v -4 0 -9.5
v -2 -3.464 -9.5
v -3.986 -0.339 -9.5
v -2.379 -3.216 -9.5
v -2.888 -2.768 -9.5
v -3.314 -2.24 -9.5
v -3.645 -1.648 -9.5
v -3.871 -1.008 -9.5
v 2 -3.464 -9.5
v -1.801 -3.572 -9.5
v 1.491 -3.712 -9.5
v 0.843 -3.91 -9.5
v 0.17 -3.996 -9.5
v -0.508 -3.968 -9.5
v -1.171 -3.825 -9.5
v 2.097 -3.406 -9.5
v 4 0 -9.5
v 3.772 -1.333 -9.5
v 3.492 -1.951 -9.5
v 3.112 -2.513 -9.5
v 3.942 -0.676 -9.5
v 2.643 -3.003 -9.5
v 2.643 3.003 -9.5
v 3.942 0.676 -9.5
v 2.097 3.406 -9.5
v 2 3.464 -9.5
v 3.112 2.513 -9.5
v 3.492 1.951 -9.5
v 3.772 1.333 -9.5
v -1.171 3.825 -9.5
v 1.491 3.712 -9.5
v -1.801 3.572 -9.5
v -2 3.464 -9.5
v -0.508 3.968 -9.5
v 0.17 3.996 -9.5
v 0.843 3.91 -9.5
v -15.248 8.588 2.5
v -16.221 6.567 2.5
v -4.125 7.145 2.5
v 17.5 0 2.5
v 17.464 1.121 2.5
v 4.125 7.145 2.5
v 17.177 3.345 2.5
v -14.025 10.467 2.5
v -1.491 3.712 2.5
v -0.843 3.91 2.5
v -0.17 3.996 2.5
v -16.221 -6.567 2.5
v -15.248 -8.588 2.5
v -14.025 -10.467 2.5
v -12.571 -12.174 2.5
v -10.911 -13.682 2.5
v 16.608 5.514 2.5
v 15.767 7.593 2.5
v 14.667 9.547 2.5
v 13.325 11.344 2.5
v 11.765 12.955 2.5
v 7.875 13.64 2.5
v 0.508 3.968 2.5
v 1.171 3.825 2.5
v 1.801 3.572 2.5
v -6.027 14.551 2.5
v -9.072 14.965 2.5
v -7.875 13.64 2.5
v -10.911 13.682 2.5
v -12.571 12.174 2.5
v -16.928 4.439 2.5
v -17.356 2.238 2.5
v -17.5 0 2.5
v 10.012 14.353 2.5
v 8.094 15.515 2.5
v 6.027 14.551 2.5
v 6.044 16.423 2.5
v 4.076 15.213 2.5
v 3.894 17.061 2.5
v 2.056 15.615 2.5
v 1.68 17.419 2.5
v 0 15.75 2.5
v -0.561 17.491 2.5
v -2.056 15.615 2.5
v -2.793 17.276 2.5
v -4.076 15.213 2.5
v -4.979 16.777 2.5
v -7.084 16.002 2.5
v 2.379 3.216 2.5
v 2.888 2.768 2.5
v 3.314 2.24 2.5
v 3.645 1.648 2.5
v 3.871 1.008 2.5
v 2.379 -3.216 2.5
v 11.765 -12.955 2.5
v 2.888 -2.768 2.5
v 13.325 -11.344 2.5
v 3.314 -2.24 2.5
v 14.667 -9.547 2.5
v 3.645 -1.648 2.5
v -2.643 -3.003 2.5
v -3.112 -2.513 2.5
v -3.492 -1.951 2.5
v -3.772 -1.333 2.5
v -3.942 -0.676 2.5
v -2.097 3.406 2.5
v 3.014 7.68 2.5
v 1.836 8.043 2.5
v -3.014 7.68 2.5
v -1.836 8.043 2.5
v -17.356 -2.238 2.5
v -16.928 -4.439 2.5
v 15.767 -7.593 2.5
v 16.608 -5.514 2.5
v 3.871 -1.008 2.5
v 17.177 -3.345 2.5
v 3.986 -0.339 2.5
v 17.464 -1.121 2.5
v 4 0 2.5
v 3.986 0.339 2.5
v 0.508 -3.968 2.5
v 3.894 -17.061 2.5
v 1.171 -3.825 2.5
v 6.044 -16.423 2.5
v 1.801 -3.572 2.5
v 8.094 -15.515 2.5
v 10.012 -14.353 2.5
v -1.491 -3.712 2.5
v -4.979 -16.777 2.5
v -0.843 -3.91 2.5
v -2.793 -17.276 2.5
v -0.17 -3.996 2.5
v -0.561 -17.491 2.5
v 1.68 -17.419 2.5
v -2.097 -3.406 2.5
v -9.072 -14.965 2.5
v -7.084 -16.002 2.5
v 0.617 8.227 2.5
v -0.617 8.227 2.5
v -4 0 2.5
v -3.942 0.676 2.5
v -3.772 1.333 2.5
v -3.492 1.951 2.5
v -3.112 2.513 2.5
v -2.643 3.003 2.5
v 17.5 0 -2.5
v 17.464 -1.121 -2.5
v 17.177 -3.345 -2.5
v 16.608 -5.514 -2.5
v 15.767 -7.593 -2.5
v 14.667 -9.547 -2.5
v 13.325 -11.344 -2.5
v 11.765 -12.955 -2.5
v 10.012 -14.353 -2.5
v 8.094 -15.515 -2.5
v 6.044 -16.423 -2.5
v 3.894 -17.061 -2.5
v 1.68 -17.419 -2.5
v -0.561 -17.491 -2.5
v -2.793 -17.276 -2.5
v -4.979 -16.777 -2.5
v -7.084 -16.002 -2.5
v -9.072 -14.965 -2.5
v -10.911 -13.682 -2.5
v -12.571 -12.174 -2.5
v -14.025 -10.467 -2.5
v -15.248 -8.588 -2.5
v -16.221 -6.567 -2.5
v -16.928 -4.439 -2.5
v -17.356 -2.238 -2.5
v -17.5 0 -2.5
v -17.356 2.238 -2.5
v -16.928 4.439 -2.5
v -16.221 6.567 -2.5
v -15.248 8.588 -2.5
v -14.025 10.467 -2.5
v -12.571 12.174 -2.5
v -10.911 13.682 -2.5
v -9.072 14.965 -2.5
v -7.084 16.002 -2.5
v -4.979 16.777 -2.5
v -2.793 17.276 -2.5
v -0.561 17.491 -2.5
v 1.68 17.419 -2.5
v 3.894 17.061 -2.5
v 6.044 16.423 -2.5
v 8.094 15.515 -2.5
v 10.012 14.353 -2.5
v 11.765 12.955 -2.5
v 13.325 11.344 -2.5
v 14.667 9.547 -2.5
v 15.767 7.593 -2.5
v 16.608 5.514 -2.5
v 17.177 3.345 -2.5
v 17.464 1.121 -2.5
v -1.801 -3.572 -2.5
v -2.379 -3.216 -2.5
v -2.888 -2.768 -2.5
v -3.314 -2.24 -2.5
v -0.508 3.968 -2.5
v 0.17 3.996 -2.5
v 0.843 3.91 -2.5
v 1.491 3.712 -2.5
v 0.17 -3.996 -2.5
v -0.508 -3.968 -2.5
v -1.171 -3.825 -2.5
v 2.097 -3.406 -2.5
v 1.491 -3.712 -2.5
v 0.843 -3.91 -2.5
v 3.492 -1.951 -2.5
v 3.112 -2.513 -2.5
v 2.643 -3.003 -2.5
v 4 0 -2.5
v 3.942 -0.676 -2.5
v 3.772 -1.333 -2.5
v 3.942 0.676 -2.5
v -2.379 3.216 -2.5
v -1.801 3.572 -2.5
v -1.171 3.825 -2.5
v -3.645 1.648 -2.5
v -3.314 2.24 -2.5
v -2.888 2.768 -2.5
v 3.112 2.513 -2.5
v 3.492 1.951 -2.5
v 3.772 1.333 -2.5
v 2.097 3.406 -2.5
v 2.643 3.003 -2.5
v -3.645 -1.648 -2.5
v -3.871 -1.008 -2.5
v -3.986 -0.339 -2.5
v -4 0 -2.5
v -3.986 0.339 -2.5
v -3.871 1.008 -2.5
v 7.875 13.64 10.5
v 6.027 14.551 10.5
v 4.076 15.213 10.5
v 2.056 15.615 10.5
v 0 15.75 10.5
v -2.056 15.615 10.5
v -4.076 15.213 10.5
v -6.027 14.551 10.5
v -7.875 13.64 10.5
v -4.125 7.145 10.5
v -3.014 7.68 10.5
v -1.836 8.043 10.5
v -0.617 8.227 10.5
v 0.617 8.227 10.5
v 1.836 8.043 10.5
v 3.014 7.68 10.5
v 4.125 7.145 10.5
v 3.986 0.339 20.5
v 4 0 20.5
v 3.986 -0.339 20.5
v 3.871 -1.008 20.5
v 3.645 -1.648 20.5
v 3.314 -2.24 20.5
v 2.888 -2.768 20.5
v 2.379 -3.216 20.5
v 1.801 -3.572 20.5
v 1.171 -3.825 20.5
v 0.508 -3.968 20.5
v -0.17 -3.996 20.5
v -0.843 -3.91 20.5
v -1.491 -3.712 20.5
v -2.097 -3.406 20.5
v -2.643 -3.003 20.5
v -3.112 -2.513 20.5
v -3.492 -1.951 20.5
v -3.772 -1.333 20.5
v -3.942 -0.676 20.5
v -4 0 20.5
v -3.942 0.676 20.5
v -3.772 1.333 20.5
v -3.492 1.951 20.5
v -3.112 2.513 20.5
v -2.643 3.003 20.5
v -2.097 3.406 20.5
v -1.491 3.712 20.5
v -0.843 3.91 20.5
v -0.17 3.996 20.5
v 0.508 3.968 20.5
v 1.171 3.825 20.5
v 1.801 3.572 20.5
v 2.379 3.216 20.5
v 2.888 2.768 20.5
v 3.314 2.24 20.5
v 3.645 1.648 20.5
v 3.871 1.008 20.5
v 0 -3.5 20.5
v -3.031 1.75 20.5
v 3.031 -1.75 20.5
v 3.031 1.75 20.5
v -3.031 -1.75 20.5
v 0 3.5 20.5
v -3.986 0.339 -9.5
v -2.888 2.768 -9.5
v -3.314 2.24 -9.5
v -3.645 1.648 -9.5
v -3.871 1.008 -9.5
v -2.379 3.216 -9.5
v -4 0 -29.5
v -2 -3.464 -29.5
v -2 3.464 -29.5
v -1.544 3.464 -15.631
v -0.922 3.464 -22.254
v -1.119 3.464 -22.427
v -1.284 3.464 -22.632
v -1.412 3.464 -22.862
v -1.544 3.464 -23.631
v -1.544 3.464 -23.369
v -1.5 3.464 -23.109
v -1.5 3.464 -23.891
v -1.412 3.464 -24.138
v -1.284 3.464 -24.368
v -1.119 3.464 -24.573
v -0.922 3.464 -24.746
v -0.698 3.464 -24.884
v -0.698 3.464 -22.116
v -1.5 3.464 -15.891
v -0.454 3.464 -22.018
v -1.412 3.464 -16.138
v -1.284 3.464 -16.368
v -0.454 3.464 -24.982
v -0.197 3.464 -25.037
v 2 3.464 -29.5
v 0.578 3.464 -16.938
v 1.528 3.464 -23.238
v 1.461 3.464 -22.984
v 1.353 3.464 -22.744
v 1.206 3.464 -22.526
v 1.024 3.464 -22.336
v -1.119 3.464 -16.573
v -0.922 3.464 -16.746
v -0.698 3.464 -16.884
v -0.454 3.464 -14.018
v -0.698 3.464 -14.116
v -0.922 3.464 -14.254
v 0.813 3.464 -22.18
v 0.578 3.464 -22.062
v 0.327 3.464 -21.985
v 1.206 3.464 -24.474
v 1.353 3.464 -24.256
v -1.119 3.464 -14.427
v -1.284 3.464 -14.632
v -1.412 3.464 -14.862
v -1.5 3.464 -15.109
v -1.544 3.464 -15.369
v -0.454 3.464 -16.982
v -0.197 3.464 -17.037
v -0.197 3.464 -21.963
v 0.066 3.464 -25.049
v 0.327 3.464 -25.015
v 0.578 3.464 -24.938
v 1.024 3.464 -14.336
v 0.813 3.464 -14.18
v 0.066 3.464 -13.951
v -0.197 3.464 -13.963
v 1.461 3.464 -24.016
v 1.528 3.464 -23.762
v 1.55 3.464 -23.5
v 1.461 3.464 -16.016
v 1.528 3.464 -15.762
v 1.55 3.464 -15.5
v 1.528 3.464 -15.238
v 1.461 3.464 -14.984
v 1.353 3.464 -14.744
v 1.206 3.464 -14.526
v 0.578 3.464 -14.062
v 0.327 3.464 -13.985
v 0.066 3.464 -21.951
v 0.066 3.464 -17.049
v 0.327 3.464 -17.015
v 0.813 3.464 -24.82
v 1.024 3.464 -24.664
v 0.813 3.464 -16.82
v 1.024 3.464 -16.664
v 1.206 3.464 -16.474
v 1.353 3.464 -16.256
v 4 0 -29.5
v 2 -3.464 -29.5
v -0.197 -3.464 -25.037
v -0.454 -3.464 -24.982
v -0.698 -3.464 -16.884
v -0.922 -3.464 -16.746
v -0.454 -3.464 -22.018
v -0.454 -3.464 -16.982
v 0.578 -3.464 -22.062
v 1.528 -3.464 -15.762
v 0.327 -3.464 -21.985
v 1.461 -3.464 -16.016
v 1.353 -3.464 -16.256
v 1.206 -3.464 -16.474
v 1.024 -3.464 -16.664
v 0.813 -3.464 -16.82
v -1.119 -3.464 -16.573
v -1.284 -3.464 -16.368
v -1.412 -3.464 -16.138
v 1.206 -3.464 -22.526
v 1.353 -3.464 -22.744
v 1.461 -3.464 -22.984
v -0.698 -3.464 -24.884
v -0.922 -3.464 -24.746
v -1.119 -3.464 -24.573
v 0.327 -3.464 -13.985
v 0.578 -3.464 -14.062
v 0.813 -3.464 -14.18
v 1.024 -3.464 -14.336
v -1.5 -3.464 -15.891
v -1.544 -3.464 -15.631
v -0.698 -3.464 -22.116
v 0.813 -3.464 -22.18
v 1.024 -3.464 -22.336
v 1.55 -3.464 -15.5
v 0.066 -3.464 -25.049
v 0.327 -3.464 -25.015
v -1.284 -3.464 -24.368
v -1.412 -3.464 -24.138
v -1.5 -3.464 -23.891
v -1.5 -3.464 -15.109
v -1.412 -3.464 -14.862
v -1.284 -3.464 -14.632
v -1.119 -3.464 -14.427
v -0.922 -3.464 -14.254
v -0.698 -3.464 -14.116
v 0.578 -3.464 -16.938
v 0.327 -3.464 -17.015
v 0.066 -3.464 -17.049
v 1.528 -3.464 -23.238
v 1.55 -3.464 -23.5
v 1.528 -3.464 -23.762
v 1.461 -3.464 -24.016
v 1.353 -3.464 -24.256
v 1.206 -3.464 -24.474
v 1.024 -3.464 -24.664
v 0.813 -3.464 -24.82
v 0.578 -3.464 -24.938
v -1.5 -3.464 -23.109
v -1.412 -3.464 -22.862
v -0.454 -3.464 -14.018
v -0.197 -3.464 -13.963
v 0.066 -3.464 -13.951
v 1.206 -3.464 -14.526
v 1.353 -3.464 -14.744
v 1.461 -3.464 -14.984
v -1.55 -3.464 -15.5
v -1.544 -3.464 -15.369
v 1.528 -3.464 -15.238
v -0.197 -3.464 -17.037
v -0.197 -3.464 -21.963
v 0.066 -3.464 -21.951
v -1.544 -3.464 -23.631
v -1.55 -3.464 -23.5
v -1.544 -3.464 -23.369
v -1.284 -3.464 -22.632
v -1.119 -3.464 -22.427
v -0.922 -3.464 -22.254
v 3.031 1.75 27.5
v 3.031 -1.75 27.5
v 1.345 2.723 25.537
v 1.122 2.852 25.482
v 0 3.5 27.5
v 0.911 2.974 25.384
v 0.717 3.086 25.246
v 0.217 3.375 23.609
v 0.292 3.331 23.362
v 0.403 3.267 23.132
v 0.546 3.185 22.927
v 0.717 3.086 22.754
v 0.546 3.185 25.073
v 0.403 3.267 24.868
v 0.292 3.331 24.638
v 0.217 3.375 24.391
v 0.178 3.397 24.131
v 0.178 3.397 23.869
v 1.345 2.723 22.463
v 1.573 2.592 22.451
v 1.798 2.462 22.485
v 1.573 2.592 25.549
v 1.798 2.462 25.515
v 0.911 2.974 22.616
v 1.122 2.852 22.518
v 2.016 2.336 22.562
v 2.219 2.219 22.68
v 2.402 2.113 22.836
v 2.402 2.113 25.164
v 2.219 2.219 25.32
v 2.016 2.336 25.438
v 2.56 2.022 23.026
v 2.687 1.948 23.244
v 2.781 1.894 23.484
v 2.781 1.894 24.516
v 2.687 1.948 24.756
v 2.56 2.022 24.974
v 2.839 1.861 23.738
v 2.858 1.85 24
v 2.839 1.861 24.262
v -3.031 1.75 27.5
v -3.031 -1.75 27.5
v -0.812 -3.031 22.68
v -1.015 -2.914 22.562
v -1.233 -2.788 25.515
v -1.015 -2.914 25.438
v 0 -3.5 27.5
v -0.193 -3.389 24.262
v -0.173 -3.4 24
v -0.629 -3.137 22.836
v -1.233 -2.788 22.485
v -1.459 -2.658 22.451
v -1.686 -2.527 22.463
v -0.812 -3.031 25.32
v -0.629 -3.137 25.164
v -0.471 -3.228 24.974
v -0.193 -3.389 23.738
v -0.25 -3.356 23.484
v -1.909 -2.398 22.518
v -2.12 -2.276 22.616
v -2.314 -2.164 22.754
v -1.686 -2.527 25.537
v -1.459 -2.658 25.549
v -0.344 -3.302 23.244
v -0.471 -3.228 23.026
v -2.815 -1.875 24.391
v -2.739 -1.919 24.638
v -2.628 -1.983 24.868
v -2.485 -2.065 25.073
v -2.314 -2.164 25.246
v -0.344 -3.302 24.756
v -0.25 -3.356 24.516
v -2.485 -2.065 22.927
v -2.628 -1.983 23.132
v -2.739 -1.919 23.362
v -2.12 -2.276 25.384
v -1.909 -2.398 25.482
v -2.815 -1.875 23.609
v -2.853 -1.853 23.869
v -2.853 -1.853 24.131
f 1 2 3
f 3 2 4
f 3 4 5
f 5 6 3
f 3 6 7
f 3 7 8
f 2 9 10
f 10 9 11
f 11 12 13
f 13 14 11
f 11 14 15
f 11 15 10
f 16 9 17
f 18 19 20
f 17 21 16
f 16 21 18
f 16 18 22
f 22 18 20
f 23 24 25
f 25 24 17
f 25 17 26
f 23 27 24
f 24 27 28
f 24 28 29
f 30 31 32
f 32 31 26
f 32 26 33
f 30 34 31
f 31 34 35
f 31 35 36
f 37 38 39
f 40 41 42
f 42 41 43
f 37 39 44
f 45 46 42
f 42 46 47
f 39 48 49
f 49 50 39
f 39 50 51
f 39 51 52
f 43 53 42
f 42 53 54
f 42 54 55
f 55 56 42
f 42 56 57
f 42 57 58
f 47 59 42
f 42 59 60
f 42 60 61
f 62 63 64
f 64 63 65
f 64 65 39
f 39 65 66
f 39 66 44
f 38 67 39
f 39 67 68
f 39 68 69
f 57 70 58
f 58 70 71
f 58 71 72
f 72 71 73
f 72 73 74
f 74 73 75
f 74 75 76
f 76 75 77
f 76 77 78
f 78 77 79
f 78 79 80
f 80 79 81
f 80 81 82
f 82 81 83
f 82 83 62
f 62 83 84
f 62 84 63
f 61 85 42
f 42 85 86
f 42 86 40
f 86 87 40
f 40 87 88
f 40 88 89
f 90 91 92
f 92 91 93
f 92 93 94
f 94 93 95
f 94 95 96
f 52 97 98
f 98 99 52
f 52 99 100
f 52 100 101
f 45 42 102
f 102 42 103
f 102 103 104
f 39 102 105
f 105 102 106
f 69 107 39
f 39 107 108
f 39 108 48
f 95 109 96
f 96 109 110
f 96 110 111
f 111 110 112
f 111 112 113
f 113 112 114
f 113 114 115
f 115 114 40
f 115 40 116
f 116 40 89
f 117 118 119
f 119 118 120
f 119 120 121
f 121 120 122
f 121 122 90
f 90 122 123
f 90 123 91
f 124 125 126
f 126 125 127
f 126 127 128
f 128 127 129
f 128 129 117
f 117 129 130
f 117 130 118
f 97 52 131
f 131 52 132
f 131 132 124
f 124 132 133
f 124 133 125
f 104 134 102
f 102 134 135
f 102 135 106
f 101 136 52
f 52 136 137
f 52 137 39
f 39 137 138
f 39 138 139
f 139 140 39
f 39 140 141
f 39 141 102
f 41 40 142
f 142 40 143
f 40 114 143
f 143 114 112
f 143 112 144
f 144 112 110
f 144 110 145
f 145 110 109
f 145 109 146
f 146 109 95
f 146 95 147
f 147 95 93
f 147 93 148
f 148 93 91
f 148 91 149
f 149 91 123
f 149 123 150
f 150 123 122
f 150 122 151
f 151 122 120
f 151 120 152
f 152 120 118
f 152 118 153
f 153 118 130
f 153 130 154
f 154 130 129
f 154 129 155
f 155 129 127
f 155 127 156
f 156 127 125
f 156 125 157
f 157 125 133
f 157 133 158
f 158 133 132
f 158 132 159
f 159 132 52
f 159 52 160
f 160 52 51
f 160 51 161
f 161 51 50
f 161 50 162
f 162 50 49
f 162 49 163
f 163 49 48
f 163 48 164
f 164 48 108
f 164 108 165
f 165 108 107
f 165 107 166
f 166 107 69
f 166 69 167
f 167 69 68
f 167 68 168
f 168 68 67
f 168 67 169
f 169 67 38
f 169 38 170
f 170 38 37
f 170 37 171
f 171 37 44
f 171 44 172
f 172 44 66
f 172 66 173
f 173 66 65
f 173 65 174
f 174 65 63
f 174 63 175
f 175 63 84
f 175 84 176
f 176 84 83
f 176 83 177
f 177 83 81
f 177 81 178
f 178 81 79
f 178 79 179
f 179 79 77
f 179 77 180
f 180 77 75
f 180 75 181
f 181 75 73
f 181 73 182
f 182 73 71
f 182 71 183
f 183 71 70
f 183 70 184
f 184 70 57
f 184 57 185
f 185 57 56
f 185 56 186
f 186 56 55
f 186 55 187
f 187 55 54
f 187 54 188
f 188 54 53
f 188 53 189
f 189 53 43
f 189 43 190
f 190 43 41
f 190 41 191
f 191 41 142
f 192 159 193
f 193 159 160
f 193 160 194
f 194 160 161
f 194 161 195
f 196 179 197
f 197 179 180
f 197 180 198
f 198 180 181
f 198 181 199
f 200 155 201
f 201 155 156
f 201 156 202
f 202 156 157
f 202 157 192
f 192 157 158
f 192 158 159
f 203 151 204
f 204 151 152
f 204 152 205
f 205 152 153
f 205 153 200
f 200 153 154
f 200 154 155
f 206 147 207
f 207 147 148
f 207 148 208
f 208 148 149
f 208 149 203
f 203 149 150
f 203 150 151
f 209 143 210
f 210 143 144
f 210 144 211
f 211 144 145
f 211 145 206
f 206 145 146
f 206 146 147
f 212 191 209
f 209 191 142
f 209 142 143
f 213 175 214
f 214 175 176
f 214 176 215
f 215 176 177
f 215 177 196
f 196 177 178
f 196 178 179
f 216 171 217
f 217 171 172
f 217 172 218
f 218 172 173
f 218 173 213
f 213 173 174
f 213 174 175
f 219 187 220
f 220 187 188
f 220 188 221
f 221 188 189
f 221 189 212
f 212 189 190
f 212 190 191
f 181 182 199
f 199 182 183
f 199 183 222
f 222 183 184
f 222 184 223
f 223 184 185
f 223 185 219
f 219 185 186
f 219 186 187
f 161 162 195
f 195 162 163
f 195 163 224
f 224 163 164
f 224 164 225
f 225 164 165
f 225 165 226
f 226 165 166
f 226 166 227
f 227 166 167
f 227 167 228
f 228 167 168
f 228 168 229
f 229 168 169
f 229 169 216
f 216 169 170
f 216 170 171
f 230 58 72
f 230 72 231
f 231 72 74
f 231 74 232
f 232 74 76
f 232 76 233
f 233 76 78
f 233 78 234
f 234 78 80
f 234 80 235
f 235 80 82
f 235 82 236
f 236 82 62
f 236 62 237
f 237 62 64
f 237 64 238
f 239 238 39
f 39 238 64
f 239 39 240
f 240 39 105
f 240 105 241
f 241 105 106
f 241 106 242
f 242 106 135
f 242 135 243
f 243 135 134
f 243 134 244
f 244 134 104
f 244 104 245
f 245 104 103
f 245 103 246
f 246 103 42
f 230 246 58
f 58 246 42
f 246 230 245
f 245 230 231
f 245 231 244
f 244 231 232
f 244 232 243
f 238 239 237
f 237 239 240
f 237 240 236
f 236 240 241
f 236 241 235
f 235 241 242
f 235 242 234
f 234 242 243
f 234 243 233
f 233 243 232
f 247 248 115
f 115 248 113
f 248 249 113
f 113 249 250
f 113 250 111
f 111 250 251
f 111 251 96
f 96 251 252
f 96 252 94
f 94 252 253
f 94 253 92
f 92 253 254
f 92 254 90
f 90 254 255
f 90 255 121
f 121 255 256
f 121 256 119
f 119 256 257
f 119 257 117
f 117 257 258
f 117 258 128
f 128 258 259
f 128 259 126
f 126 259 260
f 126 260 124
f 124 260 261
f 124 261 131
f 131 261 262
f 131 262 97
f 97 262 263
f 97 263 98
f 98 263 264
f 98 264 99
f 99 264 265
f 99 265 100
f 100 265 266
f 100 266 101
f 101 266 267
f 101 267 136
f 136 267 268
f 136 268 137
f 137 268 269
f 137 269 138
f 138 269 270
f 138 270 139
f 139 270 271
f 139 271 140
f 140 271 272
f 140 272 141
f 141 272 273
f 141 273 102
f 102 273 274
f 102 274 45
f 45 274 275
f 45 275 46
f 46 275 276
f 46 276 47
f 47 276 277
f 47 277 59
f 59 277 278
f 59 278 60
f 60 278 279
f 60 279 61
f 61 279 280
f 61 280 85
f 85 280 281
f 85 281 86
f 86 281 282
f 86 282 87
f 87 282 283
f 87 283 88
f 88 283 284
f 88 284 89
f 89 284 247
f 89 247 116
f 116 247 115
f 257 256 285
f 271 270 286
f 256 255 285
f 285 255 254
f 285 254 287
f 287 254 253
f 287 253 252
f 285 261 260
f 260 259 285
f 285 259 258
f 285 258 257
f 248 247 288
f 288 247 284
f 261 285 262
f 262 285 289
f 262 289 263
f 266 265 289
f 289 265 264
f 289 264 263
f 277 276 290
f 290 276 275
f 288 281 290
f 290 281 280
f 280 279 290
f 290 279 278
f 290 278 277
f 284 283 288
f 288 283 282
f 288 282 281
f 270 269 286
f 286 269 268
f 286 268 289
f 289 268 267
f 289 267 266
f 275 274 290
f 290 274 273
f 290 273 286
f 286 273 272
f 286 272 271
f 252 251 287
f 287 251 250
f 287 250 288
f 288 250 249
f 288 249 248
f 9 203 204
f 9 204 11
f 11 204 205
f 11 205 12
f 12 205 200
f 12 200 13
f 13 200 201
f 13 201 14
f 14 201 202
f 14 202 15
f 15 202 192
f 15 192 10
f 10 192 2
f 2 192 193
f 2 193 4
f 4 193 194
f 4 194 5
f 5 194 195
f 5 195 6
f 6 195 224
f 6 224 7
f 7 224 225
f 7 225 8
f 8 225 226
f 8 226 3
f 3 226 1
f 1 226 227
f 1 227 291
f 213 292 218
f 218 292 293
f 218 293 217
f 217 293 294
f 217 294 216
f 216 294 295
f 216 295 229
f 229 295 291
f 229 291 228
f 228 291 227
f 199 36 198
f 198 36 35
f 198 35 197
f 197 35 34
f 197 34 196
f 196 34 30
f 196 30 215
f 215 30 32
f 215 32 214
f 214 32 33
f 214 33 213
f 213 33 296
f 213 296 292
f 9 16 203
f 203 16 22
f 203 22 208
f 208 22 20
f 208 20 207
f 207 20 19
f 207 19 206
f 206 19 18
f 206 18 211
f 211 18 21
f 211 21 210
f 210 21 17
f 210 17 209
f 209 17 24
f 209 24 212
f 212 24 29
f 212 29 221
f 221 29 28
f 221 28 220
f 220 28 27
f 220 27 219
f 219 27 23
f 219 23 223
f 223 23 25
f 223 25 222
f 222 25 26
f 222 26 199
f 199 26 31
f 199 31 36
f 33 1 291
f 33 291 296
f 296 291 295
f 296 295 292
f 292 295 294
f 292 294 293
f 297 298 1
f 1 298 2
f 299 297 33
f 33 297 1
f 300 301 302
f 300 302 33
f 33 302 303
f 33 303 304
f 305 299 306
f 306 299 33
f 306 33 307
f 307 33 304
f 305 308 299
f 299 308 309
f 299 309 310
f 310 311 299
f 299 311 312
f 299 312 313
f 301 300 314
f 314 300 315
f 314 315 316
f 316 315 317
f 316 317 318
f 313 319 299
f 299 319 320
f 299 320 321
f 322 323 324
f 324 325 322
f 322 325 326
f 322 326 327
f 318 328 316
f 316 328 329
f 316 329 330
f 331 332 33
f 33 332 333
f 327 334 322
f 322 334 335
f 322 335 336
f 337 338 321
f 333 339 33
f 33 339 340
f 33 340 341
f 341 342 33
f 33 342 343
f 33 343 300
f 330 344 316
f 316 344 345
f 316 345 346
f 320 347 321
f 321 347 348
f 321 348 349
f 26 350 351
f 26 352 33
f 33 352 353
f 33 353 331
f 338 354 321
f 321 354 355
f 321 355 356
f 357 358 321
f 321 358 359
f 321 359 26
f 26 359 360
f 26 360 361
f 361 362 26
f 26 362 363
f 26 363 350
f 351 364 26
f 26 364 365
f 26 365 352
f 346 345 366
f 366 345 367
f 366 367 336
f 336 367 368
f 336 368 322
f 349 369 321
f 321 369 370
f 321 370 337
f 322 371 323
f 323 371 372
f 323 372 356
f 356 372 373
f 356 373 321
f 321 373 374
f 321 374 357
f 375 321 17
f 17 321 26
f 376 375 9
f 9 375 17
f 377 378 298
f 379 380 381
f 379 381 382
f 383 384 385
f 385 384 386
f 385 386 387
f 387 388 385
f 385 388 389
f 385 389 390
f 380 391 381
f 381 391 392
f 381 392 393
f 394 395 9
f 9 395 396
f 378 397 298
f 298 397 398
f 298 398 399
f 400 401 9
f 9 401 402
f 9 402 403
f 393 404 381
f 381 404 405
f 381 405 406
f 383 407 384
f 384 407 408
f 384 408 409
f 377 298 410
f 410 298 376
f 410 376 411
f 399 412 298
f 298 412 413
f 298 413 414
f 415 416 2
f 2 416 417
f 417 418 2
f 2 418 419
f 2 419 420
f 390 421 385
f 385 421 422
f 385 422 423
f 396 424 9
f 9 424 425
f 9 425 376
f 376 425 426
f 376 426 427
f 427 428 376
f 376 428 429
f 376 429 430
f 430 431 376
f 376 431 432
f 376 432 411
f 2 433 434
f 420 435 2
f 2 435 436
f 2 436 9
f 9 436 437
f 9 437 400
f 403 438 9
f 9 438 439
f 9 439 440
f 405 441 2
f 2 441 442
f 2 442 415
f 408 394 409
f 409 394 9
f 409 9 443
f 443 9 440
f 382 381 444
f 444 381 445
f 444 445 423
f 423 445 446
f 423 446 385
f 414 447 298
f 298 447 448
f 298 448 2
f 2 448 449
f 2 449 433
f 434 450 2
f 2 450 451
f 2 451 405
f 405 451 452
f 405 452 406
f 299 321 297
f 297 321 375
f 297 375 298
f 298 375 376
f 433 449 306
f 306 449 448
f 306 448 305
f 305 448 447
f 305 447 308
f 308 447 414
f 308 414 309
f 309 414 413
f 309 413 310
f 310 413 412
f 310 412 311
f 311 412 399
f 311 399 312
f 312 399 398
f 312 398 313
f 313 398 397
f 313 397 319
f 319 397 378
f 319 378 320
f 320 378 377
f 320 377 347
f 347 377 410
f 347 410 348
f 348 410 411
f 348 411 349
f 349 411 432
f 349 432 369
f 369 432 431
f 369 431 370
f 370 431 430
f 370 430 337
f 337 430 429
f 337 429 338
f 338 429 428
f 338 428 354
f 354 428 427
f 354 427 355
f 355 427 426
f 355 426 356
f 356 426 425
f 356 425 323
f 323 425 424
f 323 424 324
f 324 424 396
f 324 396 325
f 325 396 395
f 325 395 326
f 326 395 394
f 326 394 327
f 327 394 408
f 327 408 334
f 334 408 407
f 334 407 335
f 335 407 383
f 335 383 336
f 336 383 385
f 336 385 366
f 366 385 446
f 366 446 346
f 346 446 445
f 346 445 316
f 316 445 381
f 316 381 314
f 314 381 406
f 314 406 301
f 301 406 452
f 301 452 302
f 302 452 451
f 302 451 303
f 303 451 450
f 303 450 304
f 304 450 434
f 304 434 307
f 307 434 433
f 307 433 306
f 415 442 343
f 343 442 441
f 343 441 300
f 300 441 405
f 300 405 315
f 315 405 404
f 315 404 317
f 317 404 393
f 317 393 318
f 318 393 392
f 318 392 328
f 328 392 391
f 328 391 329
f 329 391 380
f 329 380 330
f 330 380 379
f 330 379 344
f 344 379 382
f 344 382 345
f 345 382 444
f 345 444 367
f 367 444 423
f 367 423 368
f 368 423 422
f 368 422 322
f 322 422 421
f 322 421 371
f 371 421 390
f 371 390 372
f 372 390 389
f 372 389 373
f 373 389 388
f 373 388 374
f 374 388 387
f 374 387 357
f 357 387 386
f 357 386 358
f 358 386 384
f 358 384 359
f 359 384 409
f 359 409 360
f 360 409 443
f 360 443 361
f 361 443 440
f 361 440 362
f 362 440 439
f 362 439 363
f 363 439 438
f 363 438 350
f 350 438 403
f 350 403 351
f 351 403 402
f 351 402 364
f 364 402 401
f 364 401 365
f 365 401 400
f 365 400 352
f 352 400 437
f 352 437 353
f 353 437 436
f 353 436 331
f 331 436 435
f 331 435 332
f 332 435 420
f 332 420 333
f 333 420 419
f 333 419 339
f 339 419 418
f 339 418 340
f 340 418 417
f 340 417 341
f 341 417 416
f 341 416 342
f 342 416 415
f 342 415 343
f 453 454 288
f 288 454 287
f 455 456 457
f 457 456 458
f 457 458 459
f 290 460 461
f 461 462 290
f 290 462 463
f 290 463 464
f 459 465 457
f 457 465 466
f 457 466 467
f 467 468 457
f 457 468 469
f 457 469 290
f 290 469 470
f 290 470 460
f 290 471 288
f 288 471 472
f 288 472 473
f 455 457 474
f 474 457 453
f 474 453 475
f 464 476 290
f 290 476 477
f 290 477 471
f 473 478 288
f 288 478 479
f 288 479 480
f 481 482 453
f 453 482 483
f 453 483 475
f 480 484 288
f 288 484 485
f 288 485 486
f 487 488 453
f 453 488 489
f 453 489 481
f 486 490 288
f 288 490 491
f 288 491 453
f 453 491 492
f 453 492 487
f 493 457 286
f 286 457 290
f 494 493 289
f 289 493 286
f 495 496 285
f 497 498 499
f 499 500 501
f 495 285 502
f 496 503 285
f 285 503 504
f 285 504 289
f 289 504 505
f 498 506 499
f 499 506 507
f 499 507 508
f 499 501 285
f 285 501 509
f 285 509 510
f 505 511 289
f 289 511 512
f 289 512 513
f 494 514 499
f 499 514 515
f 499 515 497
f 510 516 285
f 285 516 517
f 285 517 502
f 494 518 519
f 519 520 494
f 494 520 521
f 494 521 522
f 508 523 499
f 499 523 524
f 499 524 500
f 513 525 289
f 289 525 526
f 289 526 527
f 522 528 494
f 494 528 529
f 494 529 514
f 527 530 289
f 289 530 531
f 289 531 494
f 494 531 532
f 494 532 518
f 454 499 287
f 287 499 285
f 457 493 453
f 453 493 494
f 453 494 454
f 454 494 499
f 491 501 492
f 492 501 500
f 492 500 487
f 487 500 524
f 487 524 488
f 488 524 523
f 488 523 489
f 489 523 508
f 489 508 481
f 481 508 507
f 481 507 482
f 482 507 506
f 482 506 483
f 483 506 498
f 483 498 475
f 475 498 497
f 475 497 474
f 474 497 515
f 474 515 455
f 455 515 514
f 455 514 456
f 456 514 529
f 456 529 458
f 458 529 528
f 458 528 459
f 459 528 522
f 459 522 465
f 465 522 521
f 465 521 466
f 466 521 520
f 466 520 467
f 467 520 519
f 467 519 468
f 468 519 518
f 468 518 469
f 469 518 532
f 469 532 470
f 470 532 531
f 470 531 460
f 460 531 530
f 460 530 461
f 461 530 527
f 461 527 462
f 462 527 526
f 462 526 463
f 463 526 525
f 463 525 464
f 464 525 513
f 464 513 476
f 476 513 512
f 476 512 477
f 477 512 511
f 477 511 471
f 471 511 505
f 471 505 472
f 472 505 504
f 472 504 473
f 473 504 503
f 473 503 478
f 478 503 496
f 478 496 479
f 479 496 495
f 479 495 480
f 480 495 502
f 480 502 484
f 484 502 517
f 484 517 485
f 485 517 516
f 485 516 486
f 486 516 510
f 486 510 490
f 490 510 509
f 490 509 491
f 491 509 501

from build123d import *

# Parameters (mm, degrees)
SKETCH1_R           = 17.5
BOSS_EXTRUDE1_DEPTH = 2.5
BOSS_EXTRUDE2_DEPTH = 8
SKETCH3_R           = 4
BOSS_EXTRUDE3_DEPTH = 18
BOSS_EXTRUDE4_START = 7
SKETCH7_R           = 4
BOSS_EXTRUDE4_DEPTH = 7
BOSS_EXTRUDE5_DEPTH = 20
SKETCH10_R          = 1.55
CUT_EXTRUDE1_DEPTH  = 7
BOSS_EXTRUDE6_DEPTH = 7
SKETCH12_R          = 1.55
CUT_EXTRUDE2_DEPTH  = 6.1


with BuildPart() as part:
    # Sketch1 → Boss-Extrude1 (new, symmetric)
    with BuildSketch(Plane.XY):
        Circle(SKETCH1_R)
    extrude(amount=BOSS_EXTRUDE1_DEPTH, both=True)

    # Sketch2 → Boss-Extrude2 (add)
    with BuildSketch(Plane.XY.offset(2.5)):
        with BuildLine():
            Line((7.875, 13.63990011), (4.125, 7.144709581))
            ThreePointArc((4.125, 7.144709581), (0, 8.25), (-4.125, 7.144709581))
            Line((-4.125, 7.144709581), (-7.875, 13.63990011))
            ThreePointArc((-7.875, 13.63990011), (0, 15.75), (7.875, 13.63990011))
        make_face()
    extrude(amount=BOSS_EXTRUDE2_DEPTH)

    # Sketch3 → Boss-Extrude3 (add)
    with BuildSketch(Plane.XY.offset(2.5)):
        Circle(SKETCH3_R)
    extrude(amount=BOSS_EXTRUDE3_DEPTH)

    # Sketch7 → Boss-Extrude4 (add)
    with BuildSketch(Plane(origin=(0, 0, -2.5), x_dir=(-1, 0, 0), z_dir=(0, 0, -1)).offset(BOSS_EXTRUDE4_START)):
        with Locations(Location((0, 0, 0), (0, 0, 180))):
            Circle(SKETCH7_R)
    extrude(amount=-BOSS_EXTRUDE4_DEPTH)

    # Sketch9 → Boss-Extrude5 (add)
    with BuildSketch(Plane(origin=(0, 0, -9.5), x_dir=(-1, 0, 0), z_dir=(0, 0, -1))):
        Polygon((4, 0), (2, 3.464101615), (-2, 3.464101615), (-4, 0), (-2, -3.464101615), (2, -3.464101615), align=None)
    extrude(amount=BOSS_EXTRUDE5_DEPTH)

    # Sketch10 → Cut-Extrude1 (cut)
    with BuildSketch(Plane(origin=(0, -3.464101615, 0), x_dir=(-1, 0, 0), z_dir=(0, 1, 0))):
        with Locations(Location((0, -23.5, 0), (0, 0, 180))):
            Circle(SKETCH10_R)
        with Locations(Location((0, -15.5, 0), (0, 0, 180))):
            Circle(SKETCH10_R)
    extrude(amount=CUT_EXTRUDE1_DEPTH, mode=Mode.SUBTRACT)

    # Sketch11 → Boss-Extrude6 (add)
    with BuildSketch(Plane.XY.offset(20.5)):
        Polygon((3.031088913, 1.75), (0, 3.5), (-3.031088913, 1.75), (-3.031088913, -1.75), (0, -3.5), (3.031088913, -1.75), align=None)
    extrude(amount=BOSS_EXTRUDE6_DEPTH)

    # Sketch12 → Cut-Extrude2 (cut)
    with BuildSketch(Plane(origin=(-1.515544457, -2.625, 0), x_dir=(0.8660254037844372, -0.5000000000000026, 0), z_dir=(-0.5000000000000026, -0.8660254037844372, 0))):
        with Locations((0, 24)):
            Circle(SKETCH12_R)
    extrude(amount=-CUT_EXTRUDE2_DEPTH, mode=Mode.SUBTRACT)


solid = part.part
